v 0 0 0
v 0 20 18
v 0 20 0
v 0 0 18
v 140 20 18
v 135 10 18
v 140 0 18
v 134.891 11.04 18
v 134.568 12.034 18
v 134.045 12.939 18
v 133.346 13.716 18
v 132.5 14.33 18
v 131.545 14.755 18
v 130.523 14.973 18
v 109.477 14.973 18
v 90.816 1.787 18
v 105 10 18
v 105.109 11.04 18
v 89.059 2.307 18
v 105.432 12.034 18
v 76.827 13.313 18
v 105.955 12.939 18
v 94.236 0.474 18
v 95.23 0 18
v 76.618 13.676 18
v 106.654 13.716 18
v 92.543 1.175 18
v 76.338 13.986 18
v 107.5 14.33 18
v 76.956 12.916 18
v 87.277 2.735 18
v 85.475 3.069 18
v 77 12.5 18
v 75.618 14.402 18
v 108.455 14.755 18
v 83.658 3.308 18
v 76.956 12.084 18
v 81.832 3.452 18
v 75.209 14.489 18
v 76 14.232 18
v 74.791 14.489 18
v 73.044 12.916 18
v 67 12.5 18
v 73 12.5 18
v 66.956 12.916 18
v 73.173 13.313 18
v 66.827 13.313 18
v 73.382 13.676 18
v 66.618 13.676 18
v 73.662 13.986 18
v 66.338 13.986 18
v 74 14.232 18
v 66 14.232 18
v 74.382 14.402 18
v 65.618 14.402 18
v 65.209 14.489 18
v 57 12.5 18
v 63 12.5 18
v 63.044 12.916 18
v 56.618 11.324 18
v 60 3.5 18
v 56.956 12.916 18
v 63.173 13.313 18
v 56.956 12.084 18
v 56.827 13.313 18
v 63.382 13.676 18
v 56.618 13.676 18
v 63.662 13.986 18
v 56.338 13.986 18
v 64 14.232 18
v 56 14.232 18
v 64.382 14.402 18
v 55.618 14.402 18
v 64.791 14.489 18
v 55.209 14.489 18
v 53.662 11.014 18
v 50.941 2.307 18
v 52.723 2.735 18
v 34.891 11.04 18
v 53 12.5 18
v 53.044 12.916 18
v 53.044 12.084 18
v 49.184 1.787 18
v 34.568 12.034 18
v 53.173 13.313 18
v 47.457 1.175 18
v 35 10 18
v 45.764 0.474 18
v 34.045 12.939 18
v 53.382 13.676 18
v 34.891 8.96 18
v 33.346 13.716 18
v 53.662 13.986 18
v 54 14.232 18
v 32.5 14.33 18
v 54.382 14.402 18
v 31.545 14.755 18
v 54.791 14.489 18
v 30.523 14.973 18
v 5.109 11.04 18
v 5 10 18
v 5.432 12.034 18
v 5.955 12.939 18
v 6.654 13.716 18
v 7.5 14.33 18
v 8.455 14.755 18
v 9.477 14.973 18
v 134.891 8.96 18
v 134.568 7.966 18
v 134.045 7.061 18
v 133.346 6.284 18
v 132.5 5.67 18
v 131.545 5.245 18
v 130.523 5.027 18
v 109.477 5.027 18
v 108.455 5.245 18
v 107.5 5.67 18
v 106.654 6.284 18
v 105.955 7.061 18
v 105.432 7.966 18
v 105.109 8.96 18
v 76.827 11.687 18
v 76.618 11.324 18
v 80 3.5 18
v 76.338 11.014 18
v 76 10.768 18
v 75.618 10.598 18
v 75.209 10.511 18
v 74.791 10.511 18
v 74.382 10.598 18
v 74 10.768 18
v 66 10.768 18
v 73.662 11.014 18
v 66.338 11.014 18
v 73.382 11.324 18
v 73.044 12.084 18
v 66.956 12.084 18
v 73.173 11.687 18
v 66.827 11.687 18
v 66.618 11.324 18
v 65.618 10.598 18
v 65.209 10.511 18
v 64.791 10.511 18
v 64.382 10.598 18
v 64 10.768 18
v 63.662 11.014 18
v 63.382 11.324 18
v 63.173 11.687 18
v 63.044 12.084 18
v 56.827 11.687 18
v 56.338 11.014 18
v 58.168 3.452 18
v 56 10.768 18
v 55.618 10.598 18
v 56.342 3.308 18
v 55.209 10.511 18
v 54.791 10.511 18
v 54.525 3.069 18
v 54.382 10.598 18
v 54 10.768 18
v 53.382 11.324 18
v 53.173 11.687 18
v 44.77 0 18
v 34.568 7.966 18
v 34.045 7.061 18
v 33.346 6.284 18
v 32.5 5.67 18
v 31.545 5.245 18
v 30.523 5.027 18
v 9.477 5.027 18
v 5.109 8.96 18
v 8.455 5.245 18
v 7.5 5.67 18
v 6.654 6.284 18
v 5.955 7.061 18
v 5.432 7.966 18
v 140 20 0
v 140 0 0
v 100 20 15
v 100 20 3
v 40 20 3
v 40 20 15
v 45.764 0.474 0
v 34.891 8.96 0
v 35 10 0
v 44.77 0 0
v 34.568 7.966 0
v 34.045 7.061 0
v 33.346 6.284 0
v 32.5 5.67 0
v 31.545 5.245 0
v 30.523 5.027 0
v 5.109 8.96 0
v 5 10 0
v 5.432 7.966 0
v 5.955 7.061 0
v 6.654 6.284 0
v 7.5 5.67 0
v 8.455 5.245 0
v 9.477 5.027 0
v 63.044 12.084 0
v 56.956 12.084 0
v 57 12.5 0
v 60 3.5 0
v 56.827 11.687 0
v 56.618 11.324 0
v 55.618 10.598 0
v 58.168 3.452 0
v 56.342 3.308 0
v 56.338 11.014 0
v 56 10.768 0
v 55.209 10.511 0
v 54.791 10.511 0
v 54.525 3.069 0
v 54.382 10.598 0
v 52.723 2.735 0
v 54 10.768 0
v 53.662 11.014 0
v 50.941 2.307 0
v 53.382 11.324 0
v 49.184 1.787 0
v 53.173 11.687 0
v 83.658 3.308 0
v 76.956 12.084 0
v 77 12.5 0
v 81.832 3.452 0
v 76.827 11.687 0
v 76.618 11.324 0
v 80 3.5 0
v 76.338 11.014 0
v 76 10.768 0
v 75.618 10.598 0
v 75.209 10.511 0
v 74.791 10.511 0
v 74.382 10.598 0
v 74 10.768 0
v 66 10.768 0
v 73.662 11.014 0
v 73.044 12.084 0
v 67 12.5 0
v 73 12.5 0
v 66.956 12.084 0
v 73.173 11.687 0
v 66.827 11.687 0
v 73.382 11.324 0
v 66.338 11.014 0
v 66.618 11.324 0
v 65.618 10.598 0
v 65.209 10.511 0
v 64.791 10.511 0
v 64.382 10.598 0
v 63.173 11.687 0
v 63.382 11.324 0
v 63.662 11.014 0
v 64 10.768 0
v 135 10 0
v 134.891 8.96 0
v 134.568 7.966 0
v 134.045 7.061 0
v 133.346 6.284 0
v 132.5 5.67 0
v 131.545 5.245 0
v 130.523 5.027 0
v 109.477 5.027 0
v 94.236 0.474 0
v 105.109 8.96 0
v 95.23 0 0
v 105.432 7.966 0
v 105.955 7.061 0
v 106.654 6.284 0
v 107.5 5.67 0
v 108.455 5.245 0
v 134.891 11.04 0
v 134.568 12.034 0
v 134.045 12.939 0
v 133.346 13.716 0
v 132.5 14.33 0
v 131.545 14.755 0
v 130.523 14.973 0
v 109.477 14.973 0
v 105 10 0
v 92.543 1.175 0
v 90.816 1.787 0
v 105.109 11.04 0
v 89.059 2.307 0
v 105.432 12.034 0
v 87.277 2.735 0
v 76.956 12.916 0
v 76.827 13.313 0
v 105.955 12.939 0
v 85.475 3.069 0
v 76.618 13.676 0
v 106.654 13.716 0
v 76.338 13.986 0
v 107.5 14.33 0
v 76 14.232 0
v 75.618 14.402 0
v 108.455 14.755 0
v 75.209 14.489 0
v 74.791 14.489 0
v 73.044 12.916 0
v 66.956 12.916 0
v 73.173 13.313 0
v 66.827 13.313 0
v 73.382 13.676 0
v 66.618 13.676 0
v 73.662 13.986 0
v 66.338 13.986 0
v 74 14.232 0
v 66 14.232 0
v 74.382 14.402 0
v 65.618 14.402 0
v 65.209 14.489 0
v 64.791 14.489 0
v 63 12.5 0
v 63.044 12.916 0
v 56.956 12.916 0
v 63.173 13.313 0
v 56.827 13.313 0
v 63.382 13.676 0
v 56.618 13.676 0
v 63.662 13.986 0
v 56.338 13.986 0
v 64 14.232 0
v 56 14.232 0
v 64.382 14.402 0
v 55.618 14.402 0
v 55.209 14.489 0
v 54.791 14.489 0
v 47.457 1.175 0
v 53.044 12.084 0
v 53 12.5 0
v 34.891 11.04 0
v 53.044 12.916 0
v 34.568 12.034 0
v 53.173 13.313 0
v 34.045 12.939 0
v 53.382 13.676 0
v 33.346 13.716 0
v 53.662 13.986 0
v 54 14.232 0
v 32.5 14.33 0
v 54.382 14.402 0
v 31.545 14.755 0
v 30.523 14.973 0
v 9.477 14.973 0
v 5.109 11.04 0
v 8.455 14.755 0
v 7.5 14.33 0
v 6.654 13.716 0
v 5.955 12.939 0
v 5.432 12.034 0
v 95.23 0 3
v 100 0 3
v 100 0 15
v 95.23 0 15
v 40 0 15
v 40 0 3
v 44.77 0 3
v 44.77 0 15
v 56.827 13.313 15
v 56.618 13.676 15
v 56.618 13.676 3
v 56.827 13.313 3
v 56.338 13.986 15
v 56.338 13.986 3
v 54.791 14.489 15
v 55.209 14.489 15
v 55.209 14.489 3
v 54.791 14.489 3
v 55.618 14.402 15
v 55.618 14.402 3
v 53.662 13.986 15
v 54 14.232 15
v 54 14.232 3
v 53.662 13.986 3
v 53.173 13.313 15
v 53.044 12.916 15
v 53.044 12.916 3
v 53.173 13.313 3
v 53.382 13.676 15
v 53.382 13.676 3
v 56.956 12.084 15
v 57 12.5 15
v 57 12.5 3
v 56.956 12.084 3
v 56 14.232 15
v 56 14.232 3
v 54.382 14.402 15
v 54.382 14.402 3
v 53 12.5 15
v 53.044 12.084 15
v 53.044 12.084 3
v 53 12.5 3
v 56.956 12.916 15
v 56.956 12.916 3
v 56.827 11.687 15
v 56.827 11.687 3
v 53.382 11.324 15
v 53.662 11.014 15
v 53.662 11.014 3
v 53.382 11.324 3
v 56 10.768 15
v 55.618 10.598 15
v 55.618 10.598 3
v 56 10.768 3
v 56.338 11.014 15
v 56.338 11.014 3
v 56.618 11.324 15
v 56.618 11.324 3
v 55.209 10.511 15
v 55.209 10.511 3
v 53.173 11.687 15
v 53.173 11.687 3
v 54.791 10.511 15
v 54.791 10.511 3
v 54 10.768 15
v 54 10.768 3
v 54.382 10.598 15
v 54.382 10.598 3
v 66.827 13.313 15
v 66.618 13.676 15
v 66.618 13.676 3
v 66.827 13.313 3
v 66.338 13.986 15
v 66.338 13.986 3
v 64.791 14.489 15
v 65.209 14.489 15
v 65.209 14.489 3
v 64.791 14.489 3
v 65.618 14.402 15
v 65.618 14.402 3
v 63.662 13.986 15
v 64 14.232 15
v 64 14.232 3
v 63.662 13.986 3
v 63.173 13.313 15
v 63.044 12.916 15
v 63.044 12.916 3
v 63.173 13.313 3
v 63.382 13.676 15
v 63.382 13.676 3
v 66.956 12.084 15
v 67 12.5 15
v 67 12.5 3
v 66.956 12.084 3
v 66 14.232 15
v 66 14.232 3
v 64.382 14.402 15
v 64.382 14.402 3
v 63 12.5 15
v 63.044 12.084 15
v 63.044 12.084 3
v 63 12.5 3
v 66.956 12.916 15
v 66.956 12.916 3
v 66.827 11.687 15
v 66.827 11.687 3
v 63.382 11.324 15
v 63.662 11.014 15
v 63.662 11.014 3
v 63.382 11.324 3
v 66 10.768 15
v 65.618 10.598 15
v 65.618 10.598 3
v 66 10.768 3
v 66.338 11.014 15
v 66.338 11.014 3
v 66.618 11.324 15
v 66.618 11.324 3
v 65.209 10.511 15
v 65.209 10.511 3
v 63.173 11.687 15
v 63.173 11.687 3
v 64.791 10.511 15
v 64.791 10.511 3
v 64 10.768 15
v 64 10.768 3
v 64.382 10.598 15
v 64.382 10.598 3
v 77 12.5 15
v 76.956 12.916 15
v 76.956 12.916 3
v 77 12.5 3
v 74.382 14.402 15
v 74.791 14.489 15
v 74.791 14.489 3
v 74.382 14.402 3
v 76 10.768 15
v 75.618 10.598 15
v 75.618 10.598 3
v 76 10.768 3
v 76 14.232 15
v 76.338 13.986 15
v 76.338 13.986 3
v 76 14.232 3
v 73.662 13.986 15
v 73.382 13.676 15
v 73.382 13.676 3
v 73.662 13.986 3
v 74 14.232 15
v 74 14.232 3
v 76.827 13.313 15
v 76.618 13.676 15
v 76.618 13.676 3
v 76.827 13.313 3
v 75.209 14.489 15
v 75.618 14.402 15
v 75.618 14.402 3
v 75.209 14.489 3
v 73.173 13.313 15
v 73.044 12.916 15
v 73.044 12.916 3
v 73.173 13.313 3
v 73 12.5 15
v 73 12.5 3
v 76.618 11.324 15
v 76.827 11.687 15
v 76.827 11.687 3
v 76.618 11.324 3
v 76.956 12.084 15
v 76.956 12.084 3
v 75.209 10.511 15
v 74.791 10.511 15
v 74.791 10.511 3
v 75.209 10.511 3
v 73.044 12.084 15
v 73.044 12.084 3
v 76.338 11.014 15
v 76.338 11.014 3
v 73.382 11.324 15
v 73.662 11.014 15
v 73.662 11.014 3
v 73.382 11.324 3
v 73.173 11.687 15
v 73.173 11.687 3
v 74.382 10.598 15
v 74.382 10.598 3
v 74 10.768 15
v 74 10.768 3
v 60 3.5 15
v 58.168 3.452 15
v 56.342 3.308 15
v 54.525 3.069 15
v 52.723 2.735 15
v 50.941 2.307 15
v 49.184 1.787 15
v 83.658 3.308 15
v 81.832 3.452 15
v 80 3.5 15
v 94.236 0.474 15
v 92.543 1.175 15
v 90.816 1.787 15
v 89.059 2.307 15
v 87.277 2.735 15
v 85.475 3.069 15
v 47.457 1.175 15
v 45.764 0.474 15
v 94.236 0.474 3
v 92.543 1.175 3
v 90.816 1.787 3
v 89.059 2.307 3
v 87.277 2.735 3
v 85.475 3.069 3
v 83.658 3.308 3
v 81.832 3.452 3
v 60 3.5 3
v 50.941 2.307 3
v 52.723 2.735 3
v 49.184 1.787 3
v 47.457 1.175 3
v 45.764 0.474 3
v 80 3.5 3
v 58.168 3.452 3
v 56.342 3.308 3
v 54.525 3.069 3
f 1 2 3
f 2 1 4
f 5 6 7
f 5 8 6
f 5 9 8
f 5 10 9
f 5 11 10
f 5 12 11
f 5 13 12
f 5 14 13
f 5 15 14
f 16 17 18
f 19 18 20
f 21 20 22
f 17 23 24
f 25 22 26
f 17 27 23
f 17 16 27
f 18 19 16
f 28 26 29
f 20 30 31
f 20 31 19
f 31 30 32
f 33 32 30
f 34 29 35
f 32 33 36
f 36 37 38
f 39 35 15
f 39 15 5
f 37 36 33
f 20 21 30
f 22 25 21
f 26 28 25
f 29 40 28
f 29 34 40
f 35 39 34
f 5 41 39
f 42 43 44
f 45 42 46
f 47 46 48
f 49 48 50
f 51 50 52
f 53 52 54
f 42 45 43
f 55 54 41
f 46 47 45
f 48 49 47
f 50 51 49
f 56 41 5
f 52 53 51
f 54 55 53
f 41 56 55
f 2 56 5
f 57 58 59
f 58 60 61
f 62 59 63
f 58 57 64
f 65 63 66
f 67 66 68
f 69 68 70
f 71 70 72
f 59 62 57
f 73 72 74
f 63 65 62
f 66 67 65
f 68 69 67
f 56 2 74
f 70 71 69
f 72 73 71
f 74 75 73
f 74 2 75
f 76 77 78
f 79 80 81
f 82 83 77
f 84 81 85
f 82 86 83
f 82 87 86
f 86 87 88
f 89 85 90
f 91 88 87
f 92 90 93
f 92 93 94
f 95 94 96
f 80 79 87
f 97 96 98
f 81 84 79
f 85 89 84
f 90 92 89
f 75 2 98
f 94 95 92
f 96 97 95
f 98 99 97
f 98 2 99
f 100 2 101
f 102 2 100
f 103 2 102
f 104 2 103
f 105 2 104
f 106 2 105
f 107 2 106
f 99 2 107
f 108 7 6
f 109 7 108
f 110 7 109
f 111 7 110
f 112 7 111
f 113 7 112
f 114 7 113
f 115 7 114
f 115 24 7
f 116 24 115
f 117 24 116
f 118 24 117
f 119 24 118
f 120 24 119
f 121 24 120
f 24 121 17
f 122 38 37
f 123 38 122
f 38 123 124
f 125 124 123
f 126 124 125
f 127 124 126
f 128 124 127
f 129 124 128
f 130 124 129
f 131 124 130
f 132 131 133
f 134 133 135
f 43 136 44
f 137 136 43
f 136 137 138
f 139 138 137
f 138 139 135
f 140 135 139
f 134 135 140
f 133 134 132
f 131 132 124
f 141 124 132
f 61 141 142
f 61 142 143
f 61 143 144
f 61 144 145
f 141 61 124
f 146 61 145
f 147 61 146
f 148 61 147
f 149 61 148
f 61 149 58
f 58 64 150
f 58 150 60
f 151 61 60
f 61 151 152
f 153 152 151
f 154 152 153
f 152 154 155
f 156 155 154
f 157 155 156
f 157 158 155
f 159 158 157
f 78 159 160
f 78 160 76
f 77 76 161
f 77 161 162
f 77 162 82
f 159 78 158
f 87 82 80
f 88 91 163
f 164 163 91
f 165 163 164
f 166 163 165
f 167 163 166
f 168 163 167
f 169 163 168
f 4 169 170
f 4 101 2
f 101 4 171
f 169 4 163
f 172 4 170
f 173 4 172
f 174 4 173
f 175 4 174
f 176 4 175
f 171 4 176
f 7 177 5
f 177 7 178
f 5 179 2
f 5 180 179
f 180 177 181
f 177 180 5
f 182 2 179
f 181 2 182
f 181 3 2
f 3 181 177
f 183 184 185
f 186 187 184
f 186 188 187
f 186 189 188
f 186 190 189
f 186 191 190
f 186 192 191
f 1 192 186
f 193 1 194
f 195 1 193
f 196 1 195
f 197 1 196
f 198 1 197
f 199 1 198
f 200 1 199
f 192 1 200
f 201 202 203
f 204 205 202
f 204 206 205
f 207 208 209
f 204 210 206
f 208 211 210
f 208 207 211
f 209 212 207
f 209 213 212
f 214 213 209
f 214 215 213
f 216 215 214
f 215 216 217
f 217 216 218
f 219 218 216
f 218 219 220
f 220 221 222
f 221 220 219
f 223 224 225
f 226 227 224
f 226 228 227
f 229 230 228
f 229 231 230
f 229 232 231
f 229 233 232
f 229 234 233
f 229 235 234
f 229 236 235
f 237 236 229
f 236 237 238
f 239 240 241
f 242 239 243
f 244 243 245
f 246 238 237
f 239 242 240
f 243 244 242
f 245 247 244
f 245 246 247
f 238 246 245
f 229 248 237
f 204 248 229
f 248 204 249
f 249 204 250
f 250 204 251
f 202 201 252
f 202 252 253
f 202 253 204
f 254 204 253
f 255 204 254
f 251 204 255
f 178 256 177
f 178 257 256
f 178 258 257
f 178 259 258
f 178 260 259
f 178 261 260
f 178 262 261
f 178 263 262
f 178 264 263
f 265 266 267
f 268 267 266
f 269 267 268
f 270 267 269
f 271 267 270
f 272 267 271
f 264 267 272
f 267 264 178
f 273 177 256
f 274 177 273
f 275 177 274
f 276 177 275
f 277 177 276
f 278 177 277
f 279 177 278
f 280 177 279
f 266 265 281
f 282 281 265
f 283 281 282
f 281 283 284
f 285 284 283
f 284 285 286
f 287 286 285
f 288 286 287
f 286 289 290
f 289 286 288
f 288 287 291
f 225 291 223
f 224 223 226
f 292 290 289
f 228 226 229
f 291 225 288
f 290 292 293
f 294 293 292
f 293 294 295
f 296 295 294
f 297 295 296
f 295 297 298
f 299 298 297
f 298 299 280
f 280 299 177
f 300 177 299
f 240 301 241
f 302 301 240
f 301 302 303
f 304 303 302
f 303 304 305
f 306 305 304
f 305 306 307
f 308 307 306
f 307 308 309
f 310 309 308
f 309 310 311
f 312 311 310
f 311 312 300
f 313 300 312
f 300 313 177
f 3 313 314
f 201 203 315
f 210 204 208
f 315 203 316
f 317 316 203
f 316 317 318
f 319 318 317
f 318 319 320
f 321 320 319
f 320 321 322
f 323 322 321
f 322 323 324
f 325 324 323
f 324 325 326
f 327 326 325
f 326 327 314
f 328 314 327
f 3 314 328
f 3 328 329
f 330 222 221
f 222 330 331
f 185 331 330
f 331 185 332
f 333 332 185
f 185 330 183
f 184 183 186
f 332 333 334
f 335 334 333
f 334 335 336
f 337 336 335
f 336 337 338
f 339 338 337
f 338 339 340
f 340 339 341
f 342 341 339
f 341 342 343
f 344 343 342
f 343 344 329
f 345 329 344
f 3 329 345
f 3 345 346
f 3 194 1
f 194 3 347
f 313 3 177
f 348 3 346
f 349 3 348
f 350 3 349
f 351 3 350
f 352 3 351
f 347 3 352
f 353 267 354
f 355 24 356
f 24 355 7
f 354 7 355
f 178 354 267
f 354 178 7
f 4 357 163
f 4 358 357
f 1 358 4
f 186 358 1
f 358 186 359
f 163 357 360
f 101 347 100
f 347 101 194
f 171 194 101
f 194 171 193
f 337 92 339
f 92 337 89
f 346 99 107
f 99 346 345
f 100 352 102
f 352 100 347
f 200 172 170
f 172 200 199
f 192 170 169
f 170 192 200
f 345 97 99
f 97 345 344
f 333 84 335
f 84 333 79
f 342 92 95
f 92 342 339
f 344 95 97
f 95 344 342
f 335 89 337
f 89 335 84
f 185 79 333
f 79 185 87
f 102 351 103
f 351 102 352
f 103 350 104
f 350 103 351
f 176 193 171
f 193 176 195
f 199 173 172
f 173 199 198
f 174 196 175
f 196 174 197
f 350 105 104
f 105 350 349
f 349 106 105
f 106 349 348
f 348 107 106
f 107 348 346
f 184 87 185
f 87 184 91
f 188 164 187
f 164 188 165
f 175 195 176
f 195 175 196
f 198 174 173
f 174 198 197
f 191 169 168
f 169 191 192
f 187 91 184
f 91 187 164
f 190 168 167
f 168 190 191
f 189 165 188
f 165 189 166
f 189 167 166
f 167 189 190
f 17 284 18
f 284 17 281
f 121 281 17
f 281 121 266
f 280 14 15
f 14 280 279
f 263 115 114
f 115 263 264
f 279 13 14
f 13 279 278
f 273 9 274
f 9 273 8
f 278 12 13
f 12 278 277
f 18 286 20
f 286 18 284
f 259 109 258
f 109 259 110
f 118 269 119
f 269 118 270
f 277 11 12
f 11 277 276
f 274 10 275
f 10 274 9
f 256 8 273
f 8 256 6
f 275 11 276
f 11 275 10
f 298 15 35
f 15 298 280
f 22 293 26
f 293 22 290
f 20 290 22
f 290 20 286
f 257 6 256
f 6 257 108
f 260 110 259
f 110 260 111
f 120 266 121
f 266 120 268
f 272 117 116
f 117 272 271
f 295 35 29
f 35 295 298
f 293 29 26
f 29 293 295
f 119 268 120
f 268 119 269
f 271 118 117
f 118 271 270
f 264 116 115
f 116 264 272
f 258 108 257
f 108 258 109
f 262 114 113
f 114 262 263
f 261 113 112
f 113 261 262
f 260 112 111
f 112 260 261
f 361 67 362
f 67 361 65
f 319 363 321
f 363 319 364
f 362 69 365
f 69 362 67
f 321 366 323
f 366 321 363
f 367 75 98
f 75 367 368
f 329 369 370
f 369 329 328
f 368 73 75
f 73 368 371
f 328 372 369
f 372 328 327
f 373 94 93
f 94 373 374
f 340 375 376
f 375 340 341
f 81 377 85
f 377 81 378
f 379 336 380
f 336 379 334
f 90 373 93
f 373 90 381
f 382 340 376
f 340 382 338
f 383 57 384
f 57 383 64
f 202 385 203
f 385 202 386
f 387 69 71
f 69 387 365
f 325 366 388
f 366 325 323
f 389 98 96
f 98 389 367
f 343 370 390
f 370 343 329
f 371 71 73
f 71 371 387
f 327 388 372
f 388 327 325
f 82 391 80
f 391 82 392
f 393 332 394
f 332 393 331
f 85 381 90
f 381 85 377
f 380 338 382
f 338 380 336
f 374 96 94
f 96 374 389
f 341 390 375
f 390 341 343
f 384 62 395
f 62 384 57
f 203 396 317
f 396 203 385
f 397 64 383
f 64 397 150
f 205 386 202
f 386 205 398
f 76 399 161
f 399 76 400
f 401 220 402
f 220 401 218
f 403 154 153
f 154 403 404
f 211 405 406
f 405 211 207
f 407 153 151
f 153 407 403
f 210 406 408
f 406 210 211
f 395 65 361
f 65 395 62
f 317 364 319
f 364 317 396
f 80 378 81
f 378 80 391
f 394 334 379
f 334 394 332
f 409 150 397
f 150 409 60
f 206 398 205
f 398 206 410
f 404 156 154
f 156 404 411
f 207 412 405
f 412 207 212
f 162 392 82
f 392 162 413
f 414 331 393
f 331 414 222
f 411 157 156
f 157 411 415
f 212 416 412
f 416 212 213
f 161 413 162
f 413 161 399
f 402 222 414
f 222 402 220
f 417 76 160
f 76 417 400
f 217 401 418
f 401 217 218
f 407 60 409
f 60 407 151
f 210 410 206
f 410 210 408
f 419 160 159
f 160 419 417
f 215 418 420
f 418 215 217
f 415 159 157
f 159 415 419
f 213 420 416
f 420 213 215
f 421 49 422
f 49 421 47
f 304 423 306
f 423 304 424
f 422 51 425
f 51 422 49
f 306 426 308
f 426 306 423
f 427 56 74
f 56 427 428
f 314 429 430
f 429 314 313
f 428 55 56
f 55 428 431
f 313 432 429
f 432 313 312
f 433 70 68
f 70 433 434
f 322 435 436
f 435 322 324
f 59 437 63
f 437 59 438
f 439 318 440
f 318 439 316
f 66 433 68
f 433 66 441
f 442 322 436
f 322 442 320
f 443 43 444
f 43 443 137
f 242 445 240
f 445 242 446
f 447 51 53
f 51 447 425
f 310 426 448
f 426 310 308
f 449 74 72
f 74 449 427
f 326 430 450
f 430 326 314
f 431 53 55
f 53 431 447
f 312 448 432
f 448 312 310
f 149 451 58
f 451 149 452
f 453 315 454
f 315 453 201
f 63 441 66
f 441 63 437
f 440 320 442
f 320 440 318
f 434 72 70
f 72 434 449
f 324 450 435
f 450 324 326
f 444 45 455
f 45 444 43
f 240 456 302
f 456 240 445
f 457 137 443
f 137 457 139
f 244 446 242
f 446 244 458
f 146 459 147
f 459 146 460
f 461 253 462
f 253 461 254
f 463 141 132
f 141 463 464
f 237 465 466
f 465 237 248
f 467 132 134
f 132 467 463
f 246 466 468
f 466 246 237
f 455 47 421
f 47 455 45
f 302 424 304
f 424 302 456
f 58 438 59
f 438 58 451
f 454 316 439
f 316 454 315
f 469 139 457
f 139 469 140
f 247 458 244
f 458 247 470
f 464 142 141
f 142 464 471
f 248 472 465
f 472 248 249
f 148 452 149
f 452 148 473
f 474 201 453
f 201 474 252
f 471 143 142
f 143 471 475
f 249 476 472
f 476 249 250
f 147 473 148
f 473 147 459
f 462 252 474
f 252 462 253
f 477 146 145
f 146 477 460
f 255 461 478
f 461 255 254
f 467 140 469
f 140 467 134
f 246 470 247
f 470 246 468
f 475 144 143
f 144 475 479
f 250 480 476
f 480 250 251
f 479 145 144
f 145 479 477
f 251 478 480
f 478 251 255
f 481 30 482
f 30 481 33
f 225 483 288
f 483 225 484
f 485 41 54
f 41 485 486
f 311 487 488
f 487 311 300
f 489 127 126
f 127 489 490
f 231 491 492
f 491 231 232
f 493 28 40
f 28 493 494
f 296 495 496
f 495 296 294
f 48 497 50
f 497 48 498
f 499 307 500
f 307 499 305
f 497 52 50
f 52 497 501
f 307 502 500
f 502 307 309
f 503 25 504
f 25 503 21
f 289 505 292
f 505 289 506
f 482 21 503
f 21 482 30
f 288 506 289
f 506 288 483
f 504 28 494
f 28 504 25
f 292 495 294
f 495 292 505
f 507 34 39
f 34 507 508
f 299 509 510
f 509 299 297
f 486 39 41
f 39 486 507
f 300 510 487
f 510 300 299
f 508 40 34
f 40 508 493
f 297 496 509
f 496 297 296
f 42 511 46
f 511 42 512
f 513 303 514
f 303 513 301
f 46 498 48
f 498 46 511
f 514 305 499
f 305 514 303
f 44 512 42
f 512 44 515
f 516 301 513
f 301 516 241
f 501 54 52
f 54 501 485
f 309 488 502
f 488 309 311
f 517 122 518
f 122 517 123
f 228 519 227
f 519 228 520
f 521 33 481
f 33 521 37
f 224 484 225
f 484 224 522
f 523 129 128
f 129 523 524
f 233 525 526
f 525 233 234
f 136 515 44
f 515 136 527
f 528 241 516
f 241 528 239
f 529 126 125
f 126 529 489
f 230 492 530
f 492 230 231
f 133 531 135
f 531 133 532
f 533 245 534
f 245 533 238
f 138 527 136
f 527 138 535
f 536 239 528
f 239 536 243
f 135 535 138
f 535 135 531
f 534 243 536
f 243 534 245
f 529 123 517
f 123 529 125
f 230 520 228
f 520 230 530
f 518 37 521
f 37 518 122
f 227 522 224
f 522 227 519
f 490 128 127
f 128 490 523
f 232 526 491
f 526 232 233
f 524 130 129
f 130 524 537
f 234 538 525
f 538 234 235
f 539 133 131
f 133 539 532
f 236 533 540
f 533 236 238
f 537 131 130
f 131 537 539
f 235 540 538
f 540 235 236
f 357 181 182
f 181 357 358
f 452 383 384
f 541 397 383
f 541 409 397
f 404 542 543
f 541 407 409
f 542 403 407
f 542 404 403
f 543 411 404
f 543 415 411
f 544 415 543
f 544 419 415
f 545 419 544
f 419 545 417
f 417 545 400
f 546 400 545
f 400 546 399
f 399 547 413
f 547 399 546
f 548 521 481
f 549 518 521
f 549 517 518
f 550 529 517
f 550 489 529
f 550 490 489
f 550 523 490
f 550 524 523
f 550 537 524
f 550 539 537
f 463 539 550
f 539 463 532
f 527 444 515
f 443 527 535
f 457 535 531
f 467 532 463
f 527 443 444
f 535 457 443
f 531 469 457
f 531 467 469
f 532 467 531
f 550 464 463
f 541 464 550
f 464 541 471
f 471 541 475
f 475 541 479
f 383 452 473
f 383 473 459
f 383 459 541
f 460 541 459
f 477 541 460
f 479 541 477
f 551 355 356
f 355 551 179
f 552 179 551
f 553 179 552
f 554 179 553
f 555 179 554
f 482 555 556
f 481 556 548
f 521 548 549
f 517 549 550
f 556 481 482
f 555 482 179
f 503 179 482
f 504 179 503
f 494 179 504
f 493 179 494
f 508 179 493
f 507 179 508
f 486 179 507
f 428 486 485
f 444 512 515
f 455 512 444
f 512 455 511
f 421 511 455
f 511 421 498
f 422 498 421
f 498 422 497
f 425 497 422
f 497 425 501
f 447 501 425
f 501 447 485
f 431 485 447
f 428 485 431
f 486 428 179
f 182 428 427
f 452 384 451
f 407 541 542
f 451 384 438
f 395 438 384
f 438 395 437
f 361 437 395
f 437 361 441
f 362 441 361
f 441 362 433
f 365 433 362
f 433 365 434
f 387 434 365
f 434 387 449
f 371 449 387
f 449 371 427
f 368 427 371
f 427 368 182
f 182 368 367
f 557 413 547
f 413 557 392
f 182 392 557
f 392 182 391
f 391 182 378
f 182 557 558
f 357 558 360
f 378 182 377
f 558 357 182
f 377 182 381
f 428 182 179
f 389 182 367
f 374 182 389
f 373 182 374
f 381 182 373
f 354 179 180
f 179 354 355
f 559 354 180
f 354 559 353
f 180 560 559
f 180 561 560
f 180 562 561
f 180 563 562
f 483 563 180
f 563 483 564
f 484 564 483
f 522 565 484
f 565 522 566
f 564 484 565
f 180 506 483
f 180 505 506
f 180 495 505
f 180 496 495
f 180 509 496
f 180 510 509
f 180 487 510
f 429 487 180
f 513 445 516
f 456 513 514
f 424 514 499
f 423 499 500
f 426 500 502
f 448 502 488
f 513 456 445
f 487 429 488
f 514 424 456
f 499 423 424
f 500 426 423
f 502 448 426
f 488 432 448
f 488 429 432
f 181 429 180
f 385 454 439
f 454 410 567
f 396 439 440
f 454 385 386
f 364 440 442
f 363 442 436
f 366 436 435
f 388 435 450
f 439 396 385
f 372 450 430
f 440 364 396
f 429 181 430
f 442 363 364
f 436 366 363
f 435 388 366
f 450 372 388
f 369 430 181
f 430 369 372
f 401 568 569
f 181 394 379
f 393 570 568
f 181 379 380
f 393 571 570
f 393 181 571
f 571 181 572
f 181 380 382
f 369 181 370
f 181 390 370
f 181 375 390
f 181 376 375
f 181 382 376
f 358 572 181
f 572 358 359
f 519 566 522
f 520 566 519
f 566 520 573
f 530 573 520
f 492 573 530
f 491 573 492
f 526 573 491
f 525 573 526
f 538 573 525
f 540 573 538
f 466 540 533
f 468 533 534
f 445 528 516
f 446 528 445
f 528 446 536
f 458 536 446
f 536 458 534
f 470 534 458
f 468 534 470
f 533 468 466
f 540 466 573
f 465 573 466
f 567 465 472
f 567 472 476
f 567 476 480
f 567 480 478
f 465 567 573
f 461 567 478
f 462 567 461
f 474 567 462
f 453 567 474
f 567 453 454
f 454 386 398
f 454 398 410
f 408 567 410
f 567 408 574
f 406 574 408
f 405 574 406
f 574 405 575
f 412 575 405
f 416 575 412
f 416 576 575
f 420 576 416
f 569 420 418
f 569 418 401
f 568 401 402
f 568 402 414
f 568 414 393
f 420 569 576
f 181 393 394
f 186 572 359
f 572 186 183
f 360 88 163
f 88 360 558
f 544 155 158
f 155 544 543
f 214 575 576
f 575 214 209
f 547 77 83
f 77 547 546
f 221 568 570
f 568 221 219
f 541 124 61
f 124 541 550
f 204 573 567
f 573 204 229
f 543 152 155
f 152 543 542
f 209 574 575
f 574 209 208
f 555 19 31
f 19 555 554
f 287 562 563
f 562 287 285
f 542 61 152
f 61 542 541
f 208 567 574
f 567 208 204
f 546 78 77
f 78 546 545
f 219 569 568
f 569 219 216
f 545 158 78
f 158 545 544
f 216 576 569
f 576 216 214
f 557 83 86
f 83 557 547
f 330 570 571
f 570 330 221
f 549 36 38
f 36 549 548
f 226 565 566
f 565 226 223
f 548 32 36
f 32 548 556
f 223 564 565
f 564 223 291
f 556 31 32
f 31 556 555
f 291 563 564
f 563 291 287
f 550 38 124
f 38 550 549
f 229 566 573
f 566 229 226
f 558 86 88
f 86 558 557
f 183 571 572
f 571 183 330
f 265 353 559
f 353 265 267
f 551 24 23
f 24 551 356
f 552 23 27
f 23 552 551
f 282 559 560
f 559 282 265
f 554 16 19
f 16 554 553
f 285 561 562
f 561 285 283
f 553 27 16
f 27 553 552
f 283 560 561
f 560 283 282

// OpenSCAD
difference(){
cube([140,20,18]);
translate([10,10,-1])
hull(){
cylinder(d=10,h=20,$fn=30);
translate([20,0,0])cylinder(d=10,h=20,$fn=30);
}
translate([110,10,-1])
hull(){
cylinder(d=10,h=20,$fn=30);
translate([20,0,0])cylinder(d=10,h=20,$fn=30);
}
translate([55,12.5,-1])
cylinder(d=4,h=20,$fn=30);
translate([65,12.5,-1])
cylinder(d=4,h=20,$fn=30);
translate([75,12.5,-1])
cylinder(d=4,h=20,$fn=30);
translate([40,-1,3])cube([60,25,12]);
hull(){
translate([60,-31.5,-1])cylinder(d=70,h=25,$fn=120);
translate([80,-31.5,-1])cylinder(d=70,h=25,$fn=120);
}
}
